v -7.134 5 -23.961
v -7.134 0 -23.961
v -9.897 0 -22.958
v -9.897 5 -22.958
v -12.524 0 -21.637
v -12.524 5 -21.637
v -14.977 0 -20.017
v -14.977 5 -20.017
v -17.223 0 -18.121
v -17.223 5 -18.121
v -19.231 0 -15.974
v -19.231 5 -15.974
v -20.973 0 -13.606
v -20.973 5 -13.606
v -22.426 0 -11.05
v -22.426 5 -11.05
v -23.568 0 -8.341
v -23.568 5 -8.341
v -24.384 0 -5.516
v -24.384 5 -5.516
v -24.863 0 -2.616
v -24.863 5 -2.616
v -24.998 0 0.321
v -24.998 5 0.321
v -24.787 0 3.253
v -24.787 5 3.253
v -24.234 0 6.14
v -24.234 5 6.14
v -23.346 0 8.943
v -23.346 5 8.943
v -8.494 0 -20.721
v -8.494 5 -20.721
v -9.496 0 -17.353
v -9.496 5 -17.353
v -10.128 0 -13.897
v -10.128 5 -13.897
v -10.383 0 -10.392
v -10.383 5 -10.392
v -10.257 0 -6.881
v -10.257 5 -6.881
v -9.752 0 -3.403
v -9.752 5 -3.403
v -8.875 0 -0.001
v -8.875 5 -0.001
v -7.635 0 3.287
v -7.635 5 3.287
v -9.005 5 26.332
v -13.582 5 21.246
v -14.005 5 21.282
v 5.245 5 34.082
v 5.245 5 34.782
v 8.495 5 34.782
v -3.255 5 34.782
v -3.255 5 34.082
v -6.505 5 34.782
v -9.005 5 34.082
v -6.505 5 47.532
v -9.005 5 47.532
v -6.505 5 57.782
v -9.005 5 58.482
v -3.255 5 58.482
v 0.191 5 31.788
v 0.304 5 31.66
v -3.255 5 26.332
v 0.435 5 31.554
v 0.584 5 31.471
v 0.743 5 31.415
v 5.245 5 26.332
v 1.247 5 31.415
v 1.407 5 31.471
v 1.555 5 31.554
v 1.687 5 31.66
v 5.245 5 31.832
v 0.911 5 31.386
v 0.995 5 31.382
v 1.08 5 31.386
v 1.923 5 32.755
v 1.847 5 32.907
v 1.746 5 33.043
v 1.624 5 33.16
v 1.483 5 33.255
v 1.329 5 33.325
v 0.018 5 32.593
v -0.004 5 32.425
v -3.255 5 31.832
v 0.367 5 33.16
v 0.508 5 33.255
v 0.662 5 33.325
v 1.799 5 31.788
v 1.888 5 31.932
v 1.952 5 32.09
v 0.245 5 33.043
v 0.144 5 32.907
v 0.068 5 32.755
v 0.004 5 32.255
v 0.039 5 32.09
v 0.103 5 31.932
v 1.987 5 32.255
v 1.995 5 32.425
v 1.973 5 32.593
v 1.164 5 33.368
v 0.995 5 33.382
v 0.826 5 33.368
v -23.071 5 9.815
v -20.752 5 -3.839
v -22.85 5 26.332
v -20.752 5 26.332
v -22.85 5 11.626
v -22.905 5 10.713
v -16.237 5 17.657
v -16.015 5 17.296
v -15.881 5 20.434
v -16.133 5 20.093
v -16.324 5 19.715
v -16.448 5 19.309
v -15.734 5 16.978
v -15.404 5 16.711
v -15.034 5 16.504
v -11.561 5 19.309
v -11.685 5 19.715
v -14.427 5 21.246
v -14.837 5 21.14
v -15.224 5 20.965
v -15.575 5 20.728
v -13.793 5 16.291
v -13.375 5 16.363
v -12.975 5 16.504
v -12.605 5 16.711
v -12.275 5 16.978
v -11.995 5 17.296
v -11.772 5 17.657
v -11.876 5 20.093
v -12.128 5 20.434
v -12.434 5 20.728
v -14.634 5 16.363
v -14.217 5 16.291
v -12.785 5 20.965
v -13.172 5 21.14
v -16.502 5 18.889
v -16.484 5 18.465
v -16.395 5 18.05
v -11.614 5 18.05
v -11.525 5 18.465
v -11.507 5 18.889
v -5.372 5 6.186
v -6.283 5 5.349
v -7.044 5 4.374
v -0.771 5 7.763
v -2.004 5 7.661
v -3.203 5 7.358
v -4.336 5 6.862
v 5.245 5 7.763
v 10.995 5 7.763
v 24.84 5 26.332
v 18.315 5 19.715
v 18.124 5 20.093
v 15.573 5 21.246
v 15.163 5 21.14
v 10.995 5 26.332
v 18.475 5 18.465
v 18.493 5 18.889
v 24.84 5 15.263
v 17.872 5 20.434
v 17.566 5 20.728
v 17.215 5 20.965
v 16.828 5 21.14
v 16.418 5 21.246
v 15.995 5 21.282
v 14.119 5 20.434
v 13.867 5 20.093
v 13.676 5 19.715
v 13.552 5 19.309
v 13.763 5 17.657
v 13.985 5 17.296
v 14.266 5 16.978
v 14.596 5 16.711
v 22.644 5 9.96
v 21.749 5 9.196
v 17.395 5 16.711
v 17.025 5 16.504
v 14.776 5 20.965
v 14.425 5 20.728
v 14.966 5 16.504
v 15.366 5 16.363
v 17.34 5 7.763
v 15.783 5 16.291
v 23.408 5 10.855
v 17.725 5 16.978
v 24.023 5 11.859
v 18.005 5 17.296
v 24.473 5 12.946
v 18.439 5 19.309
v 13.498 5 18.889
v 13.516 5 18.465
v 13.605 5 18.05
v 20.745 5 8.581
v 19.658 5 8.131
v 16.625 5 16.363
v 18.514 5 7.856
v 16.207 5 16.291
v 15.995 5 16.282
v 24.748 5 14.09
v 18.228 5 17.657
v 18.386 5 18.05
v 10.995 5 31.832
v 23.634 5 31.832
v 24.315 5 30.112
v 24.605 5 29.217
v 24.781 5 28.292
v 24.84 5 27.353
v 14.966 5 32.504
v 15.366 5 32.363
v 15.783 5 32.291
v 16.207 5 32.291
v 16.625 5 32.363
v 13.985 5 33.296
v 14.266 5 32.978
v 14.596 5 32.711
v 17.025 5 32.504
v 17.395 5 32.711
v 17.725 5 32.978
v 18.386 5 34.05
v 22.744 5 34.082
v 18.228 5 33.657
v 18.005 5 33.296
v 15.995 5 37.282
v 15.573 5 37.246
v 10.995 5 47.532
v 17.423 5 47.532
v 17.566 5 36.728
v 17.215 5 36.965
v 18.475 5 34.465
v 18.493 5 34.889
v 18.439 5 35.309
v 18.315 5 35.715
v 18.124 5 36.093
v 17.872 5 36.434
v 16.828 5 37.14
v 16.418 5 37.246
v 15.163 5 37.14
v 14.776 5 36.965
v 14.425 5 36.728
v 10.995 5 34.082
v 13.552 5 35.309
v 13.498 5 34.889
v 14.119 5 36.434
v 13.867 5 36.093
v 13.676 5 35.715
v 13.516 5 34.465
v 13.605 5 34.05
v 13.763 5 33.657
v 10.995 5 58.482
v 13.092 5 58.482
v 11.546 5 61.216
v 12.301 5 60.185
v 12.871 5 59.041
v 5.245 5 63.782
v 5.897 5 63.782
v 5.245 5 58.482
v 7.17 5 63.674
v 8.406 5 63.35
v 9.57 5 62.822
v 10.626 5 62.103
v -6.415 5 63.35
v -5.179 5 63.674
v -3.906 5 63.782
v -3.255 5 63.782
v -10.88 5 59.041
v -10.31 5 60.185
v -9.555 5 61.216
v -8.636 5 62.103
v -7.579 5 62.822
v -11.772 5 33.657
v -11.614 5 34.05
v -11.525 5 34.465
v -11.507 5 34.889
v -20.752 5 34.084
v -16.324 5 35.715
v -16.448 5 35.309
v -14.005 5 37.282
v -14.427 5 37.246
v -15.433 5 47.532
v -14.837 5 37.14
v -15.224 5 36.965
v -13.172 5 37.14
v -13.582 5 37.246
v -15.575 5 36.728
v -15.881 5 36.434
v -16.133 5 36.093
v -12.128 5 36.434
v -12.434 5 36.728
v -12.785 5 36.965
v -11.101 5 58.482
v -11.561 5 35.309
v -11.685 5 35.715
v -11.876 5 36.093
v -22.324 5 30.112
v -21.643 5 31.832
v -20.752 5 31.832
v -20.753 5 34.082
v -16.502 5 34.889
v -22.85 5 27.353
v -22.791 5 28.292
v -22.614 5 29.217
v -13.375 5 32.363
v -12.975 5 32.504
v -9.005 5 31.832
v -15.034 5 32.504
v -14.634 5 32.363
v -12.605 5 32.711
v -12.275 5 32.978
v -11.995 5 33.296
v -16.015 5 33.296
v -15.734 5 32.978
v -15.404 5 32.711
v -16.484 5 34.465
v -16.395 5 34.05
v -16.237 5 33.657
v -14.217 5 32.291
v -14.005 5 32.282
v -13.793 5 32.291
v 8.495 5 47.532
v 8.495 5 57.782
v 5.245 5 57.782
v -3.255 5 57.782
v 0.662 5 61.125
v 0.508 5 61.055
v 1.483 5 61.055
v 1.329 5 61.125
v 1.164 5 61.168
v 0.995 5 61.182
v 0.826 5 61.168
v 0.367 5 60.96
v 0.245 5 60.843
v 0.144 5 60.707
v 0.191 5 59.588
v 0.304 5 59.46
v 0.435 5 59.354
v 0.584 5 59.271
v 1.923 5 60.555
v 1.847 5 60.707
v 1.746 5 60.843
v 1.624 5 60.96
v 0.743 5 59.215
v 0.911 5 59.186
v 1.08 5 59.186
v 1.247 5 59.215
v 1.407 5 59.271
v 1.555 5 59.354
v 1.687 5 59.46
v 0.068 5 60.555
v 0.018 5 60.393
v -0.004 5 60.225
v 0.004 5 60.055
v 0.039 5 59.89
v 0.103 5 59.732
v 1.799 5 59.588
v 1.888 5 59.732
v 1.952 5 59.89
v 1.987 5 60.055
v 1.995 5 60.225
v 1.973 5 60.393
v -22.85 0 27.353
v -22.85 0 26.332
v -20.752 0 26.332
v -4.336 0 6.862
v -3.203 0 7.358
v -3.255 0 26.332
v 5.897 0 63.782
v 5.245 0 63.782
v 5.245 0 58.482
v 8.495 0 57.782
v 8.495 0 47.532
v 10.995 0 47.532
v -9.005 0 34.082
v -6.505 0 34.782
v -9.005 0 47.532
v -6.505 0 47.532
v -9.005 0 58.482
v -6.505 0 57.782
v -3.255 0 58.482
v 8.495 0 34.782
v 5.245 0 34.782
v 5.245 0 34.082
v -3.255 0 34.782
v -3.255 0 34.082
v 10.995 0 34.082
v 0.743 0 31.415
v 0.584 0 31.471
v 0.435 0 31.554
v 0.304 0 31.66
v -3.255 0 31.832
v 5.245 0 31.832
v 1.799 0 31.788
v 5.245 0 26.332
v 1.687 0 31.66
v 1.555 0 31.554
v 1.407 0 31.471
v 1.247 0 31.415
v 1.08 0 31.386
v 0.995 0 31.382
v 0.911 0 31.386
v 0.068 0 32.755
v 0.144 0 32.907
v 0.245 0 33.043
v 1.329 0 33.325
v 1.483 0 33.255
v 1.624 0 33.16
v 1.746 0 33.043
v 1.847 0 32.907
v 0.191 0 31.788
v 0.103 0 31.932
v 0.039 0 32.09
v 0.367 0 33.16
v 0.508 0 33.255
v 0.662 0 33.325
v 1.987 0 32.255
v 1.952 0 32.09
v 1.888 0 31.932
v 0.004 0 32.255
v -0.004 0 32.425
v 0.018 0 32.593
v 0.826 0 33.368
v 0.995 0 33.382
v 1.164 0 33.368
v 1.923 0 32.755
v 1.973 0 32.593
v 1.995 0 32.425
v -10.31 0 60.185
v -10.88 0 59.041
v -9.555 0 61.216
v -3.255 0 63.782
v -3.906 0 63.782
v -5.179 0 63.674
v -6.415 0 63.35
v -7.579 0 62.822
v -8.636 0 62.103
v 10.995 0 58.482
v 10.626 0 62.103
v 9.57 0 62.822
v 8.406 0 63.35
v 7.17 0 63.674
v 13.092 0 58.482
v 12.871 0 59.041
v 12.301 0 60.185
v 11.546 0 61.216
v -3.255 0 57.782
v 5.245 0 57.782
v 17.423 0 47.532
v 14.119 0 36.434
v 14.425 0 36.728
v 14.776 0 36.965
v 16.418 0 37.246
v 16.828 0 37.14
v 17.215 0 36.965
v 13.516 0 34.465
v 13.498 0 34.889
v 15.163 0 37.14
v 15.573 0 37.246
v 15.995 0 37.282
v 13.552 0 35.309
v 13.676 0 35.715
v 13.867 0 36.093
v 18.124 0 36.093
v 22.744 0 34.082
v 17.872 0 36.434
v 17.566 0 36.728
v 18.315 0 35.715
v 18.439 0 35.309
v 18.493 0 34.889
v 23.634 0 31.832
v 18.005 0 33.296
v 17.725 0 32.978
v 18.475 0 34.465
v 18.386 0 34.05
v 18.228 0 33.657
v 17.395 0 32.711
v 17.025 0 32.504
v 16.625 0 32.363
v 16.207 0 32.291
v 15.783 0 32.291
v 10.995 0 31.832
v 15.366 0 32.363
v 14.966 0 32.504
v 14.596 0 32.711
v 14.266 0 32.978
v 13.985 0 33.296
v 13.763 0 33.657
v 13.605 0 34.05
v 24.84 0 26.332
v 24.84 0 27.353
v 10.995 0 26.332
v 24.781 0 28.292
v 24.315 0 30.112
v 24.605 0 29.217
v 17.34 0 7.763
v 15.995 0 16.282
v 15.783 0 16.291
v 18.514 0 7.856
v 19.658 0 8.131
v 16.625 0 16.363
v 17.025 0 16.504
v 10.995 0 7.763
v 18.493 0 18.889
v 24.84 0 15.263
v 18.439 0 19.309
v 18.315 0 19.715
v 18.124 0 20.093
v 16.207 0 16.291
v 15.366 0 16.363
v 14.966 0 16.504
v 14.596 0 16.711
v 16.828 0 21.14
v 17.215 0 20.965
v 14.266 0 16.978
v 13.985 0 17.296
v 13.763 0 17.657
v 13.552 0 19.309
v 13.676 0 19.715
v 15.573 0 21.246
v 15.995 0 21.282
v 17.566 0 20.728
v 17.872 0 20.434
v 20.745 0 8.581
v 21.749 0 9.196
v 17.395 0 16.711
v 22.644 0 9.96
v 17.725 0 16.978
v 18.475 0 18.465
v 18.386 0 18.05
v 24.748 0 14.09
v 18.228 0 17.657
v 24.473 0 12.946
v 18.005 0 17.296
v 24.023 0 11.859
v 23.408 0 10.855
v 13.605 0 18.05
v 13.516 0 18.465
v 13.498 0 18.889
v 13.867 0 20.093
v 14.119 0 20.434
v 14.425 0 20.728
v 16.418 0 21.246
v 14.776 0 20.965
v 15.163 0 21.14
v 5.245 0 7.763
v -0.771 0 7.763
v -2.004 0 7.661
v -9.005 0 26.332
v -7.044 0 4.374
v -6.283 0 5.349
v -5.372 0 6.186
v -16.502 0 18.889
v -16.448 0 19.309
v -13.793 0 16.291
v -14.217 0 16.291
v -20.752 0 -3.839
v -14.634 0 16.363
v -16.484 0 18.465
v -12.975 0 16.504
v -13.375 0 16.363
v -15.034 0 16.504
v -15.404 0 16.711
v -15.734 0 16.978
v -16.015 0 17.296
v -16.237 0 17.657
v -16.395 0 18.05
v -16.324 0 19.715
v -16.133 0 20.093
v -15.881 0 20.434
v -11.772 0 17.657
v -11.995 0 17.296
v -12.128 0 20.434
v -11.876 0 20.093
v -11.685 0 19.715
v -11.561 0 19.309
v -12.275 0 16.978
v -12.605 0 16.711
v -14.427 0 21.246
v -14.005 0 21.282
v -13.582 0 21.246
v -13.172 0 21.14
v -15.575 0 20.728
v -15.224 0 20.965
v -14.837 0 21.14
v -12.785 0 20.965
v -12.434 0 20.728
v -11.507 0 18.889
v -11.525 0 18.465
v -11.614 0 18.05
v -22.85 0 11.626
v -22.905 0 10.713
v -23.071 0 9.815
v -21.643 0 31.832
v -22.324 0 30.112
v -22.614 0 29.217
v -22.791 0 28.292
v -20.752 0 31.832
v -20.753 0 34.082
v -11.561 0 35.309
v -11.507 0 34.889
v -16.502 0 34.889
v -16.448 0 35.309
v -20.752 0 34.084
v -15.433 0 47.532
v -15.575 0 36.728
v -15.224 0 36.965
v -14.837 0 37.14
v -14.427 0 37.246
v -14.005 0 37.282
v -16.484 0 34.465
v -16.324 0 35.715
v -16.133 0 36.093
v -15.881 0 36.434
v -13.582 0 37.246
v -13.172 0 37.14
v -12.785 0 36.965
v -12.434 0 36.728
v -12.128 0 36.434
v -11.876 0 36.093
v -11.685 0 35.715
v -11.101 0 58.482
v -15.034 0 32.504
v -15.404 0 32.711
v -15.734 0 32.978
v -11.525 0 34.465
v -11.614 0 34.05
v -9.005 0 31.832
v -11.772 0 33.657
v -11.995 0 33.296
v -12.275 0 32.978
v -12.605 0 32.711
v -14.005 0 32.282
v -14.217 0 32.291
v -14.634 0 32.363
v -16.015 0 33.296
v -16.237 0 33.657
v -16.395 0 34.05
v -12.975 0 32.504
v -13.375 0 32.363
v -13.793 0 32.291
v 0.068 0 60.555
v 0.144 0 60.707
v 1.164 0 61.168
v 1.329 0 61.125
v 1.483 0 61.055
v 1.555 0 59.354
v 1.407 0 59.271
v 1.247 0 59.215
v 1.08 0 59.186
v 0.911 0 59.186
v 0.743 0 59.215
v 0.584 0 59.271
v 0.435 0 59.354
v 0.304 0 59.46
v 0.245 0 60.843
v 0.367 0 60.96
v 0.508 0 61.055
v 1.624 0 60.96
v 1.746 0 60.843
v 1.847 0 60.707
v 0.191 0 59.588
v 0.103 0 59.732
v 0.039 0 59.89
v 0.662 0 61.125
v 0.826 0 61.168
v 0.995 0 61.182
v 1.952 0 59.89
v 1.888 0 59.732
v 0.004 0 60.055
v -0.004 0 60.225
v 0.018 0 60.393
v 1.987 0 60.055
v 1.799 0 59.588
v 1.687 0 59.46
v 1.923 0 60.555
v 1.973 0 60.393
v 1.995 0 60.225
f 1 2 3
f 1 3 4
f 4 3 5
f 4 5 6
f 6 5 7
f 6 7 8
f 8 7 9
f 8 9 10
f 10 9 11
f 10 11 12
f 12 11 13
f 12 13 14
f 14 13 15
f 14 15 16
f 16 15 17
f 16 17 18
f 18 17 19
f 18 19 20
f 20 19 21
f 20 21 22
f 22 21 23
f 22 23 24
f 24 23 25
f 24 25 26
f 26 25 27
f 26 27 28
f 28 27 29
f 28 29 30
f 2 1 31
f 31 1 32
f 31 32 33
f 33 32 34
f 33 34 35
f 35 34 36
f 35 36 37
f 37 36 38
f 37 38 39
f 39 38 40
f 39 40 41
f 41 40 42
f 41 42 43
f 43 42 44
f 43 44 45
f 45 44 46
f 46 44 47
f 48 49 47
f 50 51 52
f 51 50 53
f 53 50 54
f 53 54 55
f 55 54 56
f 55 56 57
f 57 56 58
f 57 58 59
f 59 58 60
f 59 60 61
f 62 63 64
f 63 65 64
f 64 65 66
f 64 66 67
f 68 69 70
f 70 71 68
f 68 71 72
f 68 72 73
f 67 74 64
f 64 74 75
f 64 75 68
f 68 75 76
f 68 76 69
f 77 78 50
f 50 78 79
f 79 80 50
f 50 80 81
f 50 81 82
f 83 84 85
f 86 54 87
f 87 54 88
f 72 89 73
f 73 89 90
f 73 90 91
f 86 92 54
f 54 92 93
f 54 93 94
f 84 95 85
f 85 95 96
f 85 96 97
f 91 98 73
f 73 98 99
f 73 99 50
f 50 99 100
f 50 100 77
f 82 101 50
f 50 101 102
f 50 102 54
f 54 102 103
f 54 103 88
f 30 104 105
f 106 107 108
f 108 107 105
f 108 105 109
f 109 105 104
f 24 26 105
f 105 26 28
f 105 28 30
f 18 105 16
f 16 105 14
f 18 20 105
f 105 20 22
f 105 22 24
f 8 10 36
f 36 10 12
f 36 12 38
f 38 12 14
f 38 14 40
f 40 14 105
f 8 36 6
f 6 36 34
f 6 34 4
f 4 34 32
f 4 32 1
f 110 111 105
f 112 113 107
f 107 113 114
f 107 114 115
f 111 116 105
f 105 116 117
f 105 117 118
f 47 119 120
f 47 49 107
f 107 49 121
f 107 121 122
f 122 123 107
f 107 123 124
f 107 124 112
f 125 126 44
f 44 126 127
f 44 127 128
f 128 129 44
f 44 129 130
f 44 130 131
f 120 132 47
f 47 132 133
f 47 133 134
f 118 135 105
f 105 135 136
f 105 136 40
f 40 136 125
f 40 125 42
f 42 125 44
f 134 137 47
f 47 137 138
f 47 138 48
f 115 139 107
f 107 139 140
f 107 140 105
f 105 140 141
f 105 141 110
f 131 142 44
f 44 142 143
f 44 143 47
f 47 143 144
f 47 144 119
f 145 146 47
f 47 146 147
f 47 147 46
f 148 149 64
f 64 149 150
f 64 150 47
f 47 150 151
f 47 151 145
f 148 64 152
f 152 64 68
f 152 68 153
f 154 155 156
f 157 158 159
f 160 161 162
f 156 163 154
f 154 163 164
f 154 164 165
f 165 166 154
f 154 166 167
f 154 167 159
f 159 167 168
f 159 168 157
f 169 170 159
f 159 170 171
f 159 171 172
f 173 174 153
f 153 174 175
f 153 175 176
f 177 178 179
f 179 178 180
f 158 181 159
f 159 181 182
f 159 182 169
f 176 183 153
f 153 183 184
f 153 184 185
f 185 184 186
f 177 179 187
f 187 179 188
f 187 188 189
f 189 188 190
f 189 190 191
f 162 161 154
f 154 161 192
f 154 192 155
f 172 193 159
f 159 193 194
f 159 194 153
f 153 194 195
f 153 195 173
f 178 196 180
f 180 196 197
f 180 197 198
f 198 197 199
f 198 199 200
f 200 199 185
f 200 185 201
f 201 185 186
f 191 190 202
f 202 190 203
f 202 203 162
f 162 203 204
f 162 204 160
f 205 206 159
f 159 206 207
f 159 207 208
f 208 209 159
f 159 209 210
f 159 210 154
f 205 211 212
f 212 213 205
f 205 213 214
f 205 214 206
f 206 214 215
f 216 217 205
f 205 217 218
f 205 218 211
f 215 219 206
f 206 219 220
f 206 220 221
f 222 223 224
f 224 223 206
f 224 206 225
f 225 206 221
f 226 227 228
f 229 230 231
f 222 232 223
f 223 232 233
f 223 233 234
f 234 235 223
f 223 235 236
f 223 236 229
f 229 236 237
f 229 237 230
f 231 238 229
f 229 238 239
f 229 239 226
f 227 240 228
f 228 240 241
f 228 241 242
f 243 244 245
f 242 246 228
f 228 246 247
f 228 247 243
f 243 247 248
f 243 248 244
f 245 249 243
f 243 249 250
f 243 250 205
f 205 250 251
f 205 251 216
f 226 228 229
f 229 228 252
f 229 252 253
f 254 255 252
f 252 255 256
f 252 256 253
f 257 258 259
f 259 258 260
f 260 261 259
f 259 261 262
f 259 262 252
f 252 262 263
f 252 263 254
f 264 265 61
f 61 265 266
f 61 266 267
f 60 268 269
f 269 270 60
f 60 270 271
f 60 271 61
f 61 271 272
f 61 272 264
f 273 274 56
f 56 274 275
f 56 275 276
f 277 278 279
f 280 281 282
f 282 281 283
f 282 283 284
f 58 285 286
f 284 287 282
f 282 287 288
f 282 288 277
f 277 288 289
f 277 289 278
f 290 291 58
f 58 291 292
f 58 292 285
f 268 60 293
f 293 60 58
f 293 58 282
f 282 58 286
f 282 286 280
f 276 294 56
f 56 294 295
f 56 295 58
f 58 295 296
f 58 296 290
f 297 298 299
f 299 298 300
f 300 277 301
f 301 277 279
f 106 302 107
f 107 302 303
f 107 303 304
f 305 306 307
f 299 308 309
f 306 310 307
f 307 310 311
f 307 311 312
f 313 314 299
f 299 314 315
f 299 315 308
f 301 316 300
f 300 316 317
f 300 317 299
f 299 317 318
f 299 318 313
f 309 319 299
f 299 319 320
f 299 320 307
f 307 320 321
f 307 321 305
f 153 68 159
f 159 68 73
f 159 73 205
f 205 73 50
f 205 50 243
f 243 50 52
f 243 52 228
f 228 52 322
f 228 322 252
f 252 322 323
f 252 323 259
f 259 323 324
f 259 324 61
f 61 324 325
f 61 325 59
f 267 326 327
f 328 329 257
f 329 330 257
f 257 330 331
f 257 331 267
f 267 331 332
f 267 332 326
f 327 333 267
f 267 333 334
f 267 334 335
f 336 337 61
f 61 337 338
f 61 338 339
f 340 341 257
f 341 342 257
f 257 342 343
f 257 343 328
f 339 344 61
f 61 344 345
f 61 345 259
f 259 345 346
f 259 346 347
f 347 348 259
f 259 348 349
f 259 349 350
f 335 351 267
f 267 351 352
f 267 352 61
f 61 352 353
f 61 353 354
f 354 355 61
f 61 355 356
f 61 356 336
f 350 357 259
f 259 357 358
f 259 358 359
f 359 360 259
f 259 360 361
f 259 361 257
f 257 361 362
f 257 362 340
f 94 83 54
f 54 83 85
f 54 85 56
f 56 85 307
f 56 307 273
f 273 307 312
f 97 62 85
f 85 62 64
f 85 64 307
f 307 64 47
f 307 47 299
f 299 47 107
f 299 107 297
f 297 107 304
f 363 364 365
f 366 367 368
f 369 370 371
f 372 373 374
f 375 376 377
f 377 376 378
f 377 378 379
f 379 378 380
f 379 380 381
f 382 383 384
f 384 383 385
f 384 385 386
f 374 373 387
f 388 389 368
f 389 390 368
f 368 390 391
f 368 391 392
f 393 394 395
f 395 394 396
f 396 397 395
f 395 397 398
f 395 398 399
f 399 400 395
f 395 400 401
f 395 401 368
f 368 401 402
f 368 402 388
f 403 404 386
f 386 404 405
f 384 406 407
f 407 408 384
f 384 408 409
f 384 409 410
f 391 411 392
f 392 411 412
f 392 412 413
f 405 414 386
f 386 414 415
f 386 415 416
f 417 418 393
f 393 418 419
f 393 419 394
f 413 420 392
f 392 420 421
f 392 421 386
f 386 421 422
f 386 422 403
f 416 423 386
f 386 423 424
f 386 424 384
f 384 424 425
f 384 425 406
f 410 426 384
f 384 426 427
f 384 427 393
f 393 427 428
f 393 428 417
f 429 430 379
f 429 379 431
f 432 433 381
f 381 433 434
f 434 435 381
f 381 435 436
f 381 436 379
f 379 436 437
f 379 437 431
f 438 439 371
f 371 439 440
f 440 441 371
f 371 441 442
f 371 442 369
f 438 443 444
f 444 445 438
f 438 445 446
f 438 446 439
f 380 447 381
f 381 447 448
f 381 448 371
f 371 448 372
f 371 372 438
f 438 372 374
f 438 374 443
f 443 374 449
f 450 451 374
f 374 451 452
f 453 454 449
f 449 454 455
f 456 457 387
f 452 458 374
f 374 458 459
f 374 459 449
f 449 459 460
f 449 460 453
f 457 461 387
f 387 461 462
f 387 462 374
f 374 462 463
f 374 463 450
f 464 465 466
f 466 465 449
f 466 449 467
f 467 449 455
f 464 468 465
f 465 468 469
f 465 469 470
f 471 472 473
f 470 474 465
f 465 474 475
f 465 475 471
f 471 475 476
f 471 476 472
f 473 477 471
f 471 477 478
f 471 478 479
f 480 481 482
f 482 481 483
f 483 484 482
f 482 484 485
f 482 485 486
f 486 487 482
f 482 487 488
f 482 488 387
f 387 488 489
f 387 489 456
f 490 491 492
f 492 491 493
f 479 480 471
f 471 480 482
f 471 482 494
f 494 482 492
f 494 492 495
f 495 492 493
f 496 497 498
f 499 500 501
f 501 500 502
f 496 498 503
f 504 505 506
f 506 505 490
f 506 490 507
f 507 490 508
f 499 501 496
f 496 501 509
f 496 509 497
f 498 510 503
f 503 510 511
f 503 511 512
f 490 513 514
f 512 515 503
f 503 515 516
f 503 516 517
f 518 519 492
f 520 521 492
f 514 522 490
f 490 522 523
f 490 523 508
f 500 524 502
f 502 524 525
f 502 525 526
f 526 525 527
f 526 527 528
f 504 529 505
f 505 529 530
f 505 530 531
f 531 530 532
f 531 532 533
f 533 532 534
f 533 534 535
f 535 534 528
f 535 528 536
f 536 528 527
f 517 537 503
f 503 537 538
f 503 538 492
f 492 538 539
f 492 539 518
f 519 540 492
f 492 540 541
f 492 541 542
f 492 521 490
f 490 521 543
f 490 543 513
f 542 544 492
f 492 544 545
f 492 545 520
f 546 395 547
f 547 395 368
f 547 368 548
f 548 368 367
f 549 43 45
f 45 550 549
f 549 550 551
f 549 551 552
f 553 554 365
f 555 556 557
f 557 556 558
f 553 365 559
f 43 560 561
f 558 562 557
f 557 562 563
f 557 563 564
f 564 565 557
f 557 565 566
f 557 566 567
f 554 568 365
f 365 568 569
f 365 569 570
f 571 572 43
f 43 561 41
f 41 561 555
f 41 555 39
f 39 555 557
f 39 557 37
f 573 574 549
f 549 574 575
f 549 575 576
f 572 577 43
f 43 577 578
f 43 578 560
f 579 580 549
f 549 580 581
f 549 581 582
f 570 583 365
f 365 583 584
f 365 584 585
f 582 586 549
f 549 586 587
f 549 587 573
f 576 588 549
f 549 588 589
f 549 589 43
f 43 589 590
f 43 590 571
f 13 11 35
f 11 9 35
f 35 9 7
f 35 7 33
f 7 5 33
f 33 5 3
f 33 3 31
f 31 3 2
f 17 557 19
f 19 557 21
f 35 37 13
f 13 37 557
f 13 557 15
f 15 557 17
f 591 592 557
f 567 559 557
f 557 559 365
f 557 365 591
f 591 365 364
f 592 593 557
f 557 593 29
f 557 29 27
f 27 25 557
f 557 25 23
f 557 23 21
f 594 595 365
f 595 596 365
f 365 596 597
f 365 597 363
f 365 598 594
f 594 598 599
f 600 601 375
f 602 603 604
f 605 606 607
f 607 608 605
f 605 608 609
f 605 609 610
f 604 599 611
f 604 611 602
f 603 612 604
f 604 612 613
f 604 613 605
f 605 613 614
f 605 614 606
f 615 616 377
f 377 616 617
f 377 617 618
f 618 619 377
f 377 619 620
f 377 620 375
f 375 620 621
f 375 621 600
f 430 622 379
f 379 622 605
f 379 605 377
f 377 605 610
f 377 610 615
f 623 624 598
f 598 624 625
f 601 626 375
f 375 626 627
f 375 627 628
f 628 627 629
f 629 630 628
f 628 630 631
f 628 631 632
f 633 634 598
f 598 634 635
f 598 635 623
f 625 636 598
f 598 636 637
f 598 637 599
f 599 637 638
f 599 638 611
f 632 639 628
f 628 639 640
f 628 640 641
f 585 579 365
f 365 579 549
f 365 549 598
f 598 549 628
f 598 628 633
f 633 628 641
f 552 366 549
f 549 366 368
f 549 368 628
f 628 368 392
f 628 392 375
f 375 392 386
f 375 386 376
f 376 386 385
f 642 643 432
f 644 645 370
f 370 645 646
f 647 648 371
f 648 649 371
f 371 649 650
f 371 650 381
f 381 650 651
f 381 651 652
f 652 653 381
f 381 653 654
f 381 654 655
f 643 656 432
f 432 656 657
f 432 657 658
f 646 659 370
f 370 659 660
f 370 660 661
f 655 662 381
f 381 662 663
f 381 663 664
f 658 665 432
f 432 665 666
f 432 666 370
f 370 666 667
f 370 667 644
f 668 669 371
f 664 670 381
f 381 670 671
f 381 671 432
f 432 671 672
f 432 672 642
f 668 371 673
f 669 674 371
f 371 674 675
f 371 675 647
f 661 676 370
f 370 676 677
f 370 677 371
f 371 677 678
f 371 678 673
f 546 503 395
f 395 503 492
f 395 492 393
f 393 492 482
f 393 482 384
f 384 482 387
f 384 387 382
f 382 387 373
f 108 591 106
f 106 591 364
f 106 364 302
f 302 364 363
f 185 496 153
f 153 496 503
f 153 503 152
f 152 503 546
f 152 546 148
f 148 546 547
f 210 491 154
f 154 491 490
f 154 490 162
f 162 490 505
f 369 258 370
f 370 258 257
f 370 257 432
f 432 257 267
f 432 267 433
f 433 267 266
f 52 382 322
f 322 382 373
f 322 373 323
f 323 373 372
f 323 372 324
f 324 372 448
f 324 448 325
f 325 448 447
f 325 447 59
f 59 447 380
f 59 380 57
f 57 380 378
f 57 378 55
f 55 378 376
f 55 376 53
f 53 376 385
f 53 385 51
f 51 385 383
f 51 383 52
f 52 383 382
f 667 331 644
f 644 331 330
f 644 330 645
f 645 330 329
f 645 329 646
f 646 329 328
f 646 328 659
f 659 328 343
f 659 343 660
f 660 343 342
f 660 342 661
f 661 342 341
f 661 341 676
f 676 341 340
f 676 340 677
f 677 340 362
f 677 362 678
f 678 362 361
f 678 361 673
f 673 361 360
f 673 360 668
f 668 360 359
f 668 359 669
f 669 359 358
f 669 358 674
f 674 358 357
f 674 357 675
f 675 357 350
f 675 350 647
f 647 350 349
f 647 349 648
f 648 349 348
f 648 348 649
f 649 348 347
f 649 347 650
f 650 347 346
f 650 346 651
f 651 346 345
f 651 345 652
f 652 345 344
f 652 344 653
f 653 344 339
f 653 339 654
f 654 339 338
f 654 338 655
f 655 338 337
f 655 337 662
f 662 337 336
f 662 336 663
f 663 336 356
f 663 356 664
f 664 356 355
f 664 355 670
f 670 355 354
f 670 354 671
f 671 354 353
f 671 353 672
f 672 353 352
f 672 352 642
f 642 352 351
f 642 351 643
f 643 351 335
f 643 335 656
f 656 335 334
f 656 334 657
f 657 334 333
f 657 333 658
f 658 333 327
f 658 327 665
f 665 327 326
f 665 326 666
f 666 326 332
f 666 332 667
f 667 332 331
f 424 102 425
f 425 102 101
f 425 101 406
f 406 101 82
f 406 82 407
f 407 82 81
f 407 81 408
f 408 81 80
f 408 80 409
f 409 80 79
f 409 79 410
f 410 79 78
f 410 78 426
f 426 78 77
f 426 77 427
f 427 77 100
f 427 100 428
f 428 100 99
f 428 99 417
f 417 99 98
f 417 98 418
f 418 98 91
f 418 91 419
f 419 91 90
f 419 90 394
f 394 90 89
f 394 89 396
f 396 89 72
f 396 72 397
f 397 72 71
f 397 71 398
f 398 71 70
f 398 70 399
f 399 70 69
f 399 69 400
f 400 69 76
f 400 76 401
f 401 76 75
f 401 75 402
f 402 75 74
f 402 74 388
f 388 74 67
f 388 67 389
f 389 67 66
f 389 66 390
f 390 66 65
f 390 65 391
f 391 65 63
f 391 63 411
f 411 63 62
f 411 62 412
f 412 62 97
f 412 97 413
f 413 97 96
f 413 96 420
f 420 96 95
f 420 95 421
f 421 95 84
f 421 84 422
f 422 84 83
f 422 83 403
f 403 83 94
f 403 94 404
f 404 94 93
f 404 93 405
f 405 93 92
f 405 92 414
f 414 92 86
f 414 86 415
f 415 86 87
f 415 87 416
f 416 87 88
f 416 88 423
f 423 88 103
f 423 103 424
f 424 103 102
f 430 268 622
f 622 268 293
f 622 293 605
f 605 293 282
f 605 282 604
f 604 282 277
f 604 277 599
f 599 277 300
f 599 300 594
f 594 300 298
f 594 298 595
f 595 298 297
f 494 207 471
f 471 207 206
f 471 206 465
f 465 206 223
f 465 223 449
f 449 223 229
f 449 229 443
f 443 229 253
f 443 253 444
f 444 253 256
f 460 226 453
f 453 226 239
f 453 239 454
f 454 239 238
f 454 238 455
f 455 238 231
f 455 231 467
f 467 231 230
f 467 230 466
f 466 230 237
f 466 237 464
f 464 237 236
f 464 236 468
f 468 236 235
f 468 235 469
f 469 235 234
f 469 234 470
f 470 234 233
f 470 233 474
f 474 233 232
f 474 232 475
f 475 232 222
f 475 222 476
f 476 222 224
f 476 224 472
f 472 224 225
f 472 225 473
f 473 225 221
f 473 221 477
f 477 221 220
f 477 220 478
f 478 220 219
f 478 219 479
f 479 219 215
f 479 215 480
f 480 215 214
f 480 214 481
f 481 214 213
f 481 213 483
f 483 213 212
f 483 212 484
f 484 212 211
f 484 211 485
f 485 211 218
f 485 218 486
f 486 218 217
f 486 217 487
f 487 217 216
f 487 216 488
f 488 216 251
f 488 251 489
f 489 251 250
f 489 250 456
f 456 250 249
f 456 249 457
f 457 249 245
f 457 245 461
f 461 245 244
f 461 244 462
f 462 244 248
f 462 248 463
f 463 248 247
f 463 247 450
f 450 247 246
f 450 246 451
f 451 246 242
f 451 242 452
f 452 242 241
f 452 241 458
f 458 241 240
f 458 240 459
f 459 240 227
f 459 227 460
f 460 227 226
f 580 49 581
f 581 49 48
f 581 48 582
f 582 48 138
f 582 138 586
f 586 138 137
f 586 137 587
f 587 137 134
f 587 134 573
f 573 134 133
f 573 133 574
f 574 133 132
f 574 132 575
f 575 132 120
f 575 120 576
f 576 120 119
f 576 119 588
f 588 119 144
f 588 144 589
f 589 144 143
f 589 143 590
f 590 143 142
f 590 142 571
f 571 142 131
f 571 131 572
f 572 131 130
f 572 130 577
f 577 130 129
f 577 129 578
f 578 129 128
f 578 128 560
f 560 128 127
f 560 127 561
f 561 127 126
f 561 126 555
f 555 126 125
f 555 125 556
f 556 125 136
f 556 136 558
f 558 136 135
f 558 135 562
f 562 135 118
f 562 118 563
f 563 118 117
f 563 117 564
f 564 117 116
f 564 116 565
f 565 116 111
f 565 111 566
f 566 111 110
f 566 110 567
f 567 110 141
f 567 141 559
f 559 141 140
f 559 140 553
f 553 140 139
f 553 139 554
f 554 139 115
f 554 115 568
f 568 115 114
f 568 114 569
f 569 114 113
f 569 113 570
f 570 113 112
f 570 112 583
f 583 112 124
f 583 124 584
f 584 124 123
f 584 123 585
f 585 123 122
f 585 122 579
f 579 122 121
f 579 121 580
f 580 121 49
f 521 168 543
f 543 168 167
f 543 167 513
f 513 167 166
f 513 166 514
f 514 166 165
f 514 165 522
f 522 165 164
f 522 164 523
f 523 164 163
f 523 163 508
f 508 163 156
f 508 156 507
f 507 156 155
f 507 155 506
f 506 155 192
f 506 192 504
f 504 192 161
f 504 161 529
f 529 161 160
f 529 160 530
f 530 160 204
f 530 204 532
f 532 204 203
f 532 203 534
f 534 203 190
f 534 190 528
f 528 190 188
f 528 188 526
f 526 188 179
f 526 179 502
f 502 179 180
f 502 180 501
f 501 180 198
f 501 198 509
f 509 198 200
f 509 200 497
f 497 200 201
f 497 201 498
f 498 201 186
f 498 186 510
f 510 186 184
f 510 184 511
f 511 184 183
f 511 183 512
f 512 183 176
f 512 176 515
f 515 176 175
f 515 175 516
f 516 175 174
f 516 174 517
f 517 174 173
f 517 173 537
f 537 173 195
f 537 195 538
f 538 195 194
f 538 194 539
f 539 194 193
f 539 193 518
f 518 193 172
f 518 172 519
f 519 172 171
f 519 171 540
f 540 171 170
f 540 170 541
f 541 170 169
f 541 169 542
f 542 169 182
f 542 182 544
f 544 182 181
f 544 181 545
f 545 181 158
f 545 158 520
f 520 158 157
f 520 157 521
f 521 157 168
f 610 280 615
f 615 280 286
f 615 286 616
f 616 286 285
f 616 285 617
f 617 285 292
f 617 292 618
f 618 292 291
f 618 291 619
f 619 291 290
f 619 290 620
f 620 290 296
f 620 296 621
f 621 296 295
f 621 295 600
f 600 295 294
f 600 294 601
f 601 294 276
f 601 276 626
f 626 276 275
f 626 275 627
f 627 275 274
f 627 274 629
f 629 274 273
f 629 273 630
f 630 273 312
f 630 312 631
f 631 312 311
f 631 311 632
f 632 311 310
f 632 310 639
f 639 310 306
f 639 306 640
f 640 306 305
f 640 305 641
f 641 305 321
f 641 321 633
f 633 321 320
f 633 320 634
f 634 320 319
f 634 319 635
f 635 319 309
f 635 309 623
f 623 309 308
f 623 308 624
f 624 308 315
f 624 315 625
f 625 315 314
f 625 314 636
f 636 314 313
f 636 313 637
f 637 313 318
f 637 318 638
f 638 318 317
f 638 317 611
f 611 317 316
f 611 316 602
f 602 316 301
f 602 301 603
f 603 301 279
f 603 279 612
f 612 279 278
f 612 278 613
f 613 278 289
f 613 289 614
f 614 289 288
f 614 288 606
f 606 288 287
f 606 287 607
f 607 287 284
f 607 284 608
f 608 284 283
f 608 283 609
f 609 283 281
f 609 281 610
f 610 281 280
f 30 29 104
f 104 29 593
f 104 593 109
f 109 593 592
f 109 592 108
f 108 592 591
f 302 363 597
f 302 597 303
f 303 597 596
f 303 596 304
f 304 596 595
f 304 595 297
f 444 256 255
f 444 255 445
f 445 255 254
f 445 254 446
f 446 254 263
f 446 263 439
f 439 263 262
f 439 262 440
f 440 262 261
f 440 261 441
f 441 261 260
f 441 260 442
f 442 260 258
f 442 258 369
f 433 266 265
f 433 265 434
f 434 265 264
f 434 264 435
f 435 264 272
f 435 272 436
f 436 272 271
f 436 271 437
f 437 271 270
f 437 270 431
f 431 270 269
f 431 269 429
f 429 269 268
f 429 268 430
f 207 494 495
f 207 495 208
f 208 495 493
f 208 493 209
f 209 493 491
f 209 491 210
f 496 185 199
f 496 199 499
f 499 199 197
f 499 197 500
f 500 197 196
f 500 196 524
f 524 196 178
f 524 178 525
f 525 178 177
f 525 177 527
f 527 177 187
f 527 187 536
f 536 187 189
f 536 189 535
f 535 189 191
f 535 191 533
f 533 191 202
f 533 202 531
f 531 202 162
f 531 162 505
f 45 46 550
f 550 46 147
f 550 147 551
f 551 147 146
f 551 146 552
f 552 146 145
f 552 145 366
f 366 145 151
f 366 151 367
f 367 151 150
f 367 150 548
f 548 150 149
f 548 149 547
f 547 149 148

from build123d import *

# Parameters (mm, degrees)
SKETCH1_R           = 25
BOSS_EXTRUDE1_DEPTH = 5
CUT_EXTRUDE1_START  = -5
CUT_EXTRUDE1_DEPTH  = 5
BOSS_EXTRUDE2_START = -5
BOSS_EXTRUDE2_DEPTH = 5
SKETCH7_W           = 20
SKETCH7_H           = 35
SKETCH7_R           = 1
SKETCH7_W_2         = 15
SKETCH7_H_2         = 23
BOSS_EXTRUDE3_DEPTH = 5
BOSS_EXTRUDE4_DEPTH = 5
SKETCH10_R          = 2.5
CUT_EXTRUDE3_DEPTH  = 5
FILLET3_R           = 7.5


with BuildPart() as part:
    # Sketch1 → Boss-Extrude1 (new body)
    with BuildSketch(Plane(origin=(0, 0, 0), x_dir=(1, 0, 0), z_dir=(0, 1, 0))):
        Circle(SKETCH1_R)
    extrude(amount=BOSS_EXTRUDE1_DEPTH)

    # Sketch2 → Cut-Extrude1 (cut)
    with BuildSketch(Plane(origin=(0, 5, 0), x_dir=(1, 0, 0), z_dir=(0, 1, 0)).offset(CUT_EXTRUDE1_START)):
        with BuildLine():
            ThreePointArc((12.986967165, -21.362085195), (21.790756975, -12.2540977), (25, 0))
            ThreePointArc((25, 0), (14.944215283, 20.041717231), (-7.133634365, 23.960618956))
            ThreePointArc((-7.133634365, 23.960618956), (-7.596668184, -3.37247162), (12.986967165, -21.362085195))
        make_face()
    extrude(amount=CUT_EXTRUDE1_DEPTH, mode=Mode.SUBTRACT)

    # Sketch4 → Boss-Extrude2 (add)
    with BuildSketch(Plane(origin=(0, 5, 0), x_dir=(1, 0, 0), z_dir=(0, 1, 0)).offset(BOSS_EXTRUDE2_START)):
        with BuildLine():
            Line((24.840469341, -7.763428106), (-5.227737426, -7.763428106))
            ThreePointArc((-5.227737426, -7.763428106), (2.650074831, -16.20966255), (12.986967165, -21.362085195))
            ThreePointArc((12.986967165, -21.362085195), (-7.468591232, -23.858334917), (-22.849556978, -10.143852617))
            Line((-22.849556978, -10.143852617), (-22.849556978, -28.782420825))
            Line((-22.849556978, -28.782420825), (24.840469341, -28.782420825))
            Line((24.840469341, -28.782420825), (24.840469341, -7.763428106))
        make_face()
    extrude(amount=BOSS_EXTRUDE2_DEPTH)

    # Sketch7 → Boss-Extrude3 (add)
    with BuildSketch(Plane(origin=(0, 5, 0), x_dir=(1, 0, 0), z_dir=(0, 1, 0))):
        with Locations((0.995456182, -46.282420825)):
            Rectangle(SKETCH7_W, SKETCH7_H)
        with Locations((0.995456182, -60.182420825)):
            Circle(SKETCH7_R, mode=Mode.SUBTRACT)
        with Locations((0.995456182, -32.382420825)):
            Circle(SKETCH7_R, mode=Mode.SUBTRACT)
        with Locations((0.995456182, -46.282420825)):
            Rectangle(SKETCH7_W_2, SKETCH7_H_2, mode=Mode.SUBTRACT)
    extrude(amount=-BOSS_EXTRUDE3_DEPTH)

    # Sketch9 → Boss-Extrude4 (add)
    with BuildSketch(Plane(origin=(0, 5, 0), x_dir=(1, 0, 0), z_dir=(0, 1, 0))):
        Polygon((-9.004543818, -28.782420825), (-22.849556978, -28.782420825), (-9.004543818, -63.782420825), align=None)
        Polygon((10.995456182, -28.782420825), (10.995456182, -63.782420825), (24.840469341, -28.782420825), align=None)
    extrude(amount=-BOSS_EXTRUDE4_DEPTH)

    # Sketch10 → Cut-Extrude3 (cut)
    with BuildSketch(Plane(origin=(0, 5, 0), x_dir=(1, 0, 0), z_dir=(0, 1, 0))):
        with Locations((15.995456182, -34.782420825)):
            Circle(SKETCH10_R)
        with Locations((-14.004543818, -34.782420825)):
            Circle(SKETCH10_R)
        with Locations((15.995456182, -18.782420825)):
            Circle(SKETCH10_R)
        with Locations((-14.004543818, -18.782420825)):
            Circle(SKETCH10_R)
    extrude(amount=-CUT_EXTRUDE3_DEPTH, mode=Mode.SUBTRACT)

    # Fillet3
    fillet3_edges = [part.edges().sort_by_distance(p)[0] for p in [
        (-22.849556978, 2.5, 10.143852617),
        (-22.849556978, 2.5, 28.782420825),
        (10.995456182, 2.5, 63.782420825),
        (-9.004543818, 2.5, 63.782420825),
        (24.840469341, 2.5, 28.782420825),
        (24.840469341, 2.5, 7.763428106),
        (-5.227737426, 2.5, 7.763428106),
    ]]
    fillet(fillet3_edges, radius=FILLET3_R)


solid = part.part
